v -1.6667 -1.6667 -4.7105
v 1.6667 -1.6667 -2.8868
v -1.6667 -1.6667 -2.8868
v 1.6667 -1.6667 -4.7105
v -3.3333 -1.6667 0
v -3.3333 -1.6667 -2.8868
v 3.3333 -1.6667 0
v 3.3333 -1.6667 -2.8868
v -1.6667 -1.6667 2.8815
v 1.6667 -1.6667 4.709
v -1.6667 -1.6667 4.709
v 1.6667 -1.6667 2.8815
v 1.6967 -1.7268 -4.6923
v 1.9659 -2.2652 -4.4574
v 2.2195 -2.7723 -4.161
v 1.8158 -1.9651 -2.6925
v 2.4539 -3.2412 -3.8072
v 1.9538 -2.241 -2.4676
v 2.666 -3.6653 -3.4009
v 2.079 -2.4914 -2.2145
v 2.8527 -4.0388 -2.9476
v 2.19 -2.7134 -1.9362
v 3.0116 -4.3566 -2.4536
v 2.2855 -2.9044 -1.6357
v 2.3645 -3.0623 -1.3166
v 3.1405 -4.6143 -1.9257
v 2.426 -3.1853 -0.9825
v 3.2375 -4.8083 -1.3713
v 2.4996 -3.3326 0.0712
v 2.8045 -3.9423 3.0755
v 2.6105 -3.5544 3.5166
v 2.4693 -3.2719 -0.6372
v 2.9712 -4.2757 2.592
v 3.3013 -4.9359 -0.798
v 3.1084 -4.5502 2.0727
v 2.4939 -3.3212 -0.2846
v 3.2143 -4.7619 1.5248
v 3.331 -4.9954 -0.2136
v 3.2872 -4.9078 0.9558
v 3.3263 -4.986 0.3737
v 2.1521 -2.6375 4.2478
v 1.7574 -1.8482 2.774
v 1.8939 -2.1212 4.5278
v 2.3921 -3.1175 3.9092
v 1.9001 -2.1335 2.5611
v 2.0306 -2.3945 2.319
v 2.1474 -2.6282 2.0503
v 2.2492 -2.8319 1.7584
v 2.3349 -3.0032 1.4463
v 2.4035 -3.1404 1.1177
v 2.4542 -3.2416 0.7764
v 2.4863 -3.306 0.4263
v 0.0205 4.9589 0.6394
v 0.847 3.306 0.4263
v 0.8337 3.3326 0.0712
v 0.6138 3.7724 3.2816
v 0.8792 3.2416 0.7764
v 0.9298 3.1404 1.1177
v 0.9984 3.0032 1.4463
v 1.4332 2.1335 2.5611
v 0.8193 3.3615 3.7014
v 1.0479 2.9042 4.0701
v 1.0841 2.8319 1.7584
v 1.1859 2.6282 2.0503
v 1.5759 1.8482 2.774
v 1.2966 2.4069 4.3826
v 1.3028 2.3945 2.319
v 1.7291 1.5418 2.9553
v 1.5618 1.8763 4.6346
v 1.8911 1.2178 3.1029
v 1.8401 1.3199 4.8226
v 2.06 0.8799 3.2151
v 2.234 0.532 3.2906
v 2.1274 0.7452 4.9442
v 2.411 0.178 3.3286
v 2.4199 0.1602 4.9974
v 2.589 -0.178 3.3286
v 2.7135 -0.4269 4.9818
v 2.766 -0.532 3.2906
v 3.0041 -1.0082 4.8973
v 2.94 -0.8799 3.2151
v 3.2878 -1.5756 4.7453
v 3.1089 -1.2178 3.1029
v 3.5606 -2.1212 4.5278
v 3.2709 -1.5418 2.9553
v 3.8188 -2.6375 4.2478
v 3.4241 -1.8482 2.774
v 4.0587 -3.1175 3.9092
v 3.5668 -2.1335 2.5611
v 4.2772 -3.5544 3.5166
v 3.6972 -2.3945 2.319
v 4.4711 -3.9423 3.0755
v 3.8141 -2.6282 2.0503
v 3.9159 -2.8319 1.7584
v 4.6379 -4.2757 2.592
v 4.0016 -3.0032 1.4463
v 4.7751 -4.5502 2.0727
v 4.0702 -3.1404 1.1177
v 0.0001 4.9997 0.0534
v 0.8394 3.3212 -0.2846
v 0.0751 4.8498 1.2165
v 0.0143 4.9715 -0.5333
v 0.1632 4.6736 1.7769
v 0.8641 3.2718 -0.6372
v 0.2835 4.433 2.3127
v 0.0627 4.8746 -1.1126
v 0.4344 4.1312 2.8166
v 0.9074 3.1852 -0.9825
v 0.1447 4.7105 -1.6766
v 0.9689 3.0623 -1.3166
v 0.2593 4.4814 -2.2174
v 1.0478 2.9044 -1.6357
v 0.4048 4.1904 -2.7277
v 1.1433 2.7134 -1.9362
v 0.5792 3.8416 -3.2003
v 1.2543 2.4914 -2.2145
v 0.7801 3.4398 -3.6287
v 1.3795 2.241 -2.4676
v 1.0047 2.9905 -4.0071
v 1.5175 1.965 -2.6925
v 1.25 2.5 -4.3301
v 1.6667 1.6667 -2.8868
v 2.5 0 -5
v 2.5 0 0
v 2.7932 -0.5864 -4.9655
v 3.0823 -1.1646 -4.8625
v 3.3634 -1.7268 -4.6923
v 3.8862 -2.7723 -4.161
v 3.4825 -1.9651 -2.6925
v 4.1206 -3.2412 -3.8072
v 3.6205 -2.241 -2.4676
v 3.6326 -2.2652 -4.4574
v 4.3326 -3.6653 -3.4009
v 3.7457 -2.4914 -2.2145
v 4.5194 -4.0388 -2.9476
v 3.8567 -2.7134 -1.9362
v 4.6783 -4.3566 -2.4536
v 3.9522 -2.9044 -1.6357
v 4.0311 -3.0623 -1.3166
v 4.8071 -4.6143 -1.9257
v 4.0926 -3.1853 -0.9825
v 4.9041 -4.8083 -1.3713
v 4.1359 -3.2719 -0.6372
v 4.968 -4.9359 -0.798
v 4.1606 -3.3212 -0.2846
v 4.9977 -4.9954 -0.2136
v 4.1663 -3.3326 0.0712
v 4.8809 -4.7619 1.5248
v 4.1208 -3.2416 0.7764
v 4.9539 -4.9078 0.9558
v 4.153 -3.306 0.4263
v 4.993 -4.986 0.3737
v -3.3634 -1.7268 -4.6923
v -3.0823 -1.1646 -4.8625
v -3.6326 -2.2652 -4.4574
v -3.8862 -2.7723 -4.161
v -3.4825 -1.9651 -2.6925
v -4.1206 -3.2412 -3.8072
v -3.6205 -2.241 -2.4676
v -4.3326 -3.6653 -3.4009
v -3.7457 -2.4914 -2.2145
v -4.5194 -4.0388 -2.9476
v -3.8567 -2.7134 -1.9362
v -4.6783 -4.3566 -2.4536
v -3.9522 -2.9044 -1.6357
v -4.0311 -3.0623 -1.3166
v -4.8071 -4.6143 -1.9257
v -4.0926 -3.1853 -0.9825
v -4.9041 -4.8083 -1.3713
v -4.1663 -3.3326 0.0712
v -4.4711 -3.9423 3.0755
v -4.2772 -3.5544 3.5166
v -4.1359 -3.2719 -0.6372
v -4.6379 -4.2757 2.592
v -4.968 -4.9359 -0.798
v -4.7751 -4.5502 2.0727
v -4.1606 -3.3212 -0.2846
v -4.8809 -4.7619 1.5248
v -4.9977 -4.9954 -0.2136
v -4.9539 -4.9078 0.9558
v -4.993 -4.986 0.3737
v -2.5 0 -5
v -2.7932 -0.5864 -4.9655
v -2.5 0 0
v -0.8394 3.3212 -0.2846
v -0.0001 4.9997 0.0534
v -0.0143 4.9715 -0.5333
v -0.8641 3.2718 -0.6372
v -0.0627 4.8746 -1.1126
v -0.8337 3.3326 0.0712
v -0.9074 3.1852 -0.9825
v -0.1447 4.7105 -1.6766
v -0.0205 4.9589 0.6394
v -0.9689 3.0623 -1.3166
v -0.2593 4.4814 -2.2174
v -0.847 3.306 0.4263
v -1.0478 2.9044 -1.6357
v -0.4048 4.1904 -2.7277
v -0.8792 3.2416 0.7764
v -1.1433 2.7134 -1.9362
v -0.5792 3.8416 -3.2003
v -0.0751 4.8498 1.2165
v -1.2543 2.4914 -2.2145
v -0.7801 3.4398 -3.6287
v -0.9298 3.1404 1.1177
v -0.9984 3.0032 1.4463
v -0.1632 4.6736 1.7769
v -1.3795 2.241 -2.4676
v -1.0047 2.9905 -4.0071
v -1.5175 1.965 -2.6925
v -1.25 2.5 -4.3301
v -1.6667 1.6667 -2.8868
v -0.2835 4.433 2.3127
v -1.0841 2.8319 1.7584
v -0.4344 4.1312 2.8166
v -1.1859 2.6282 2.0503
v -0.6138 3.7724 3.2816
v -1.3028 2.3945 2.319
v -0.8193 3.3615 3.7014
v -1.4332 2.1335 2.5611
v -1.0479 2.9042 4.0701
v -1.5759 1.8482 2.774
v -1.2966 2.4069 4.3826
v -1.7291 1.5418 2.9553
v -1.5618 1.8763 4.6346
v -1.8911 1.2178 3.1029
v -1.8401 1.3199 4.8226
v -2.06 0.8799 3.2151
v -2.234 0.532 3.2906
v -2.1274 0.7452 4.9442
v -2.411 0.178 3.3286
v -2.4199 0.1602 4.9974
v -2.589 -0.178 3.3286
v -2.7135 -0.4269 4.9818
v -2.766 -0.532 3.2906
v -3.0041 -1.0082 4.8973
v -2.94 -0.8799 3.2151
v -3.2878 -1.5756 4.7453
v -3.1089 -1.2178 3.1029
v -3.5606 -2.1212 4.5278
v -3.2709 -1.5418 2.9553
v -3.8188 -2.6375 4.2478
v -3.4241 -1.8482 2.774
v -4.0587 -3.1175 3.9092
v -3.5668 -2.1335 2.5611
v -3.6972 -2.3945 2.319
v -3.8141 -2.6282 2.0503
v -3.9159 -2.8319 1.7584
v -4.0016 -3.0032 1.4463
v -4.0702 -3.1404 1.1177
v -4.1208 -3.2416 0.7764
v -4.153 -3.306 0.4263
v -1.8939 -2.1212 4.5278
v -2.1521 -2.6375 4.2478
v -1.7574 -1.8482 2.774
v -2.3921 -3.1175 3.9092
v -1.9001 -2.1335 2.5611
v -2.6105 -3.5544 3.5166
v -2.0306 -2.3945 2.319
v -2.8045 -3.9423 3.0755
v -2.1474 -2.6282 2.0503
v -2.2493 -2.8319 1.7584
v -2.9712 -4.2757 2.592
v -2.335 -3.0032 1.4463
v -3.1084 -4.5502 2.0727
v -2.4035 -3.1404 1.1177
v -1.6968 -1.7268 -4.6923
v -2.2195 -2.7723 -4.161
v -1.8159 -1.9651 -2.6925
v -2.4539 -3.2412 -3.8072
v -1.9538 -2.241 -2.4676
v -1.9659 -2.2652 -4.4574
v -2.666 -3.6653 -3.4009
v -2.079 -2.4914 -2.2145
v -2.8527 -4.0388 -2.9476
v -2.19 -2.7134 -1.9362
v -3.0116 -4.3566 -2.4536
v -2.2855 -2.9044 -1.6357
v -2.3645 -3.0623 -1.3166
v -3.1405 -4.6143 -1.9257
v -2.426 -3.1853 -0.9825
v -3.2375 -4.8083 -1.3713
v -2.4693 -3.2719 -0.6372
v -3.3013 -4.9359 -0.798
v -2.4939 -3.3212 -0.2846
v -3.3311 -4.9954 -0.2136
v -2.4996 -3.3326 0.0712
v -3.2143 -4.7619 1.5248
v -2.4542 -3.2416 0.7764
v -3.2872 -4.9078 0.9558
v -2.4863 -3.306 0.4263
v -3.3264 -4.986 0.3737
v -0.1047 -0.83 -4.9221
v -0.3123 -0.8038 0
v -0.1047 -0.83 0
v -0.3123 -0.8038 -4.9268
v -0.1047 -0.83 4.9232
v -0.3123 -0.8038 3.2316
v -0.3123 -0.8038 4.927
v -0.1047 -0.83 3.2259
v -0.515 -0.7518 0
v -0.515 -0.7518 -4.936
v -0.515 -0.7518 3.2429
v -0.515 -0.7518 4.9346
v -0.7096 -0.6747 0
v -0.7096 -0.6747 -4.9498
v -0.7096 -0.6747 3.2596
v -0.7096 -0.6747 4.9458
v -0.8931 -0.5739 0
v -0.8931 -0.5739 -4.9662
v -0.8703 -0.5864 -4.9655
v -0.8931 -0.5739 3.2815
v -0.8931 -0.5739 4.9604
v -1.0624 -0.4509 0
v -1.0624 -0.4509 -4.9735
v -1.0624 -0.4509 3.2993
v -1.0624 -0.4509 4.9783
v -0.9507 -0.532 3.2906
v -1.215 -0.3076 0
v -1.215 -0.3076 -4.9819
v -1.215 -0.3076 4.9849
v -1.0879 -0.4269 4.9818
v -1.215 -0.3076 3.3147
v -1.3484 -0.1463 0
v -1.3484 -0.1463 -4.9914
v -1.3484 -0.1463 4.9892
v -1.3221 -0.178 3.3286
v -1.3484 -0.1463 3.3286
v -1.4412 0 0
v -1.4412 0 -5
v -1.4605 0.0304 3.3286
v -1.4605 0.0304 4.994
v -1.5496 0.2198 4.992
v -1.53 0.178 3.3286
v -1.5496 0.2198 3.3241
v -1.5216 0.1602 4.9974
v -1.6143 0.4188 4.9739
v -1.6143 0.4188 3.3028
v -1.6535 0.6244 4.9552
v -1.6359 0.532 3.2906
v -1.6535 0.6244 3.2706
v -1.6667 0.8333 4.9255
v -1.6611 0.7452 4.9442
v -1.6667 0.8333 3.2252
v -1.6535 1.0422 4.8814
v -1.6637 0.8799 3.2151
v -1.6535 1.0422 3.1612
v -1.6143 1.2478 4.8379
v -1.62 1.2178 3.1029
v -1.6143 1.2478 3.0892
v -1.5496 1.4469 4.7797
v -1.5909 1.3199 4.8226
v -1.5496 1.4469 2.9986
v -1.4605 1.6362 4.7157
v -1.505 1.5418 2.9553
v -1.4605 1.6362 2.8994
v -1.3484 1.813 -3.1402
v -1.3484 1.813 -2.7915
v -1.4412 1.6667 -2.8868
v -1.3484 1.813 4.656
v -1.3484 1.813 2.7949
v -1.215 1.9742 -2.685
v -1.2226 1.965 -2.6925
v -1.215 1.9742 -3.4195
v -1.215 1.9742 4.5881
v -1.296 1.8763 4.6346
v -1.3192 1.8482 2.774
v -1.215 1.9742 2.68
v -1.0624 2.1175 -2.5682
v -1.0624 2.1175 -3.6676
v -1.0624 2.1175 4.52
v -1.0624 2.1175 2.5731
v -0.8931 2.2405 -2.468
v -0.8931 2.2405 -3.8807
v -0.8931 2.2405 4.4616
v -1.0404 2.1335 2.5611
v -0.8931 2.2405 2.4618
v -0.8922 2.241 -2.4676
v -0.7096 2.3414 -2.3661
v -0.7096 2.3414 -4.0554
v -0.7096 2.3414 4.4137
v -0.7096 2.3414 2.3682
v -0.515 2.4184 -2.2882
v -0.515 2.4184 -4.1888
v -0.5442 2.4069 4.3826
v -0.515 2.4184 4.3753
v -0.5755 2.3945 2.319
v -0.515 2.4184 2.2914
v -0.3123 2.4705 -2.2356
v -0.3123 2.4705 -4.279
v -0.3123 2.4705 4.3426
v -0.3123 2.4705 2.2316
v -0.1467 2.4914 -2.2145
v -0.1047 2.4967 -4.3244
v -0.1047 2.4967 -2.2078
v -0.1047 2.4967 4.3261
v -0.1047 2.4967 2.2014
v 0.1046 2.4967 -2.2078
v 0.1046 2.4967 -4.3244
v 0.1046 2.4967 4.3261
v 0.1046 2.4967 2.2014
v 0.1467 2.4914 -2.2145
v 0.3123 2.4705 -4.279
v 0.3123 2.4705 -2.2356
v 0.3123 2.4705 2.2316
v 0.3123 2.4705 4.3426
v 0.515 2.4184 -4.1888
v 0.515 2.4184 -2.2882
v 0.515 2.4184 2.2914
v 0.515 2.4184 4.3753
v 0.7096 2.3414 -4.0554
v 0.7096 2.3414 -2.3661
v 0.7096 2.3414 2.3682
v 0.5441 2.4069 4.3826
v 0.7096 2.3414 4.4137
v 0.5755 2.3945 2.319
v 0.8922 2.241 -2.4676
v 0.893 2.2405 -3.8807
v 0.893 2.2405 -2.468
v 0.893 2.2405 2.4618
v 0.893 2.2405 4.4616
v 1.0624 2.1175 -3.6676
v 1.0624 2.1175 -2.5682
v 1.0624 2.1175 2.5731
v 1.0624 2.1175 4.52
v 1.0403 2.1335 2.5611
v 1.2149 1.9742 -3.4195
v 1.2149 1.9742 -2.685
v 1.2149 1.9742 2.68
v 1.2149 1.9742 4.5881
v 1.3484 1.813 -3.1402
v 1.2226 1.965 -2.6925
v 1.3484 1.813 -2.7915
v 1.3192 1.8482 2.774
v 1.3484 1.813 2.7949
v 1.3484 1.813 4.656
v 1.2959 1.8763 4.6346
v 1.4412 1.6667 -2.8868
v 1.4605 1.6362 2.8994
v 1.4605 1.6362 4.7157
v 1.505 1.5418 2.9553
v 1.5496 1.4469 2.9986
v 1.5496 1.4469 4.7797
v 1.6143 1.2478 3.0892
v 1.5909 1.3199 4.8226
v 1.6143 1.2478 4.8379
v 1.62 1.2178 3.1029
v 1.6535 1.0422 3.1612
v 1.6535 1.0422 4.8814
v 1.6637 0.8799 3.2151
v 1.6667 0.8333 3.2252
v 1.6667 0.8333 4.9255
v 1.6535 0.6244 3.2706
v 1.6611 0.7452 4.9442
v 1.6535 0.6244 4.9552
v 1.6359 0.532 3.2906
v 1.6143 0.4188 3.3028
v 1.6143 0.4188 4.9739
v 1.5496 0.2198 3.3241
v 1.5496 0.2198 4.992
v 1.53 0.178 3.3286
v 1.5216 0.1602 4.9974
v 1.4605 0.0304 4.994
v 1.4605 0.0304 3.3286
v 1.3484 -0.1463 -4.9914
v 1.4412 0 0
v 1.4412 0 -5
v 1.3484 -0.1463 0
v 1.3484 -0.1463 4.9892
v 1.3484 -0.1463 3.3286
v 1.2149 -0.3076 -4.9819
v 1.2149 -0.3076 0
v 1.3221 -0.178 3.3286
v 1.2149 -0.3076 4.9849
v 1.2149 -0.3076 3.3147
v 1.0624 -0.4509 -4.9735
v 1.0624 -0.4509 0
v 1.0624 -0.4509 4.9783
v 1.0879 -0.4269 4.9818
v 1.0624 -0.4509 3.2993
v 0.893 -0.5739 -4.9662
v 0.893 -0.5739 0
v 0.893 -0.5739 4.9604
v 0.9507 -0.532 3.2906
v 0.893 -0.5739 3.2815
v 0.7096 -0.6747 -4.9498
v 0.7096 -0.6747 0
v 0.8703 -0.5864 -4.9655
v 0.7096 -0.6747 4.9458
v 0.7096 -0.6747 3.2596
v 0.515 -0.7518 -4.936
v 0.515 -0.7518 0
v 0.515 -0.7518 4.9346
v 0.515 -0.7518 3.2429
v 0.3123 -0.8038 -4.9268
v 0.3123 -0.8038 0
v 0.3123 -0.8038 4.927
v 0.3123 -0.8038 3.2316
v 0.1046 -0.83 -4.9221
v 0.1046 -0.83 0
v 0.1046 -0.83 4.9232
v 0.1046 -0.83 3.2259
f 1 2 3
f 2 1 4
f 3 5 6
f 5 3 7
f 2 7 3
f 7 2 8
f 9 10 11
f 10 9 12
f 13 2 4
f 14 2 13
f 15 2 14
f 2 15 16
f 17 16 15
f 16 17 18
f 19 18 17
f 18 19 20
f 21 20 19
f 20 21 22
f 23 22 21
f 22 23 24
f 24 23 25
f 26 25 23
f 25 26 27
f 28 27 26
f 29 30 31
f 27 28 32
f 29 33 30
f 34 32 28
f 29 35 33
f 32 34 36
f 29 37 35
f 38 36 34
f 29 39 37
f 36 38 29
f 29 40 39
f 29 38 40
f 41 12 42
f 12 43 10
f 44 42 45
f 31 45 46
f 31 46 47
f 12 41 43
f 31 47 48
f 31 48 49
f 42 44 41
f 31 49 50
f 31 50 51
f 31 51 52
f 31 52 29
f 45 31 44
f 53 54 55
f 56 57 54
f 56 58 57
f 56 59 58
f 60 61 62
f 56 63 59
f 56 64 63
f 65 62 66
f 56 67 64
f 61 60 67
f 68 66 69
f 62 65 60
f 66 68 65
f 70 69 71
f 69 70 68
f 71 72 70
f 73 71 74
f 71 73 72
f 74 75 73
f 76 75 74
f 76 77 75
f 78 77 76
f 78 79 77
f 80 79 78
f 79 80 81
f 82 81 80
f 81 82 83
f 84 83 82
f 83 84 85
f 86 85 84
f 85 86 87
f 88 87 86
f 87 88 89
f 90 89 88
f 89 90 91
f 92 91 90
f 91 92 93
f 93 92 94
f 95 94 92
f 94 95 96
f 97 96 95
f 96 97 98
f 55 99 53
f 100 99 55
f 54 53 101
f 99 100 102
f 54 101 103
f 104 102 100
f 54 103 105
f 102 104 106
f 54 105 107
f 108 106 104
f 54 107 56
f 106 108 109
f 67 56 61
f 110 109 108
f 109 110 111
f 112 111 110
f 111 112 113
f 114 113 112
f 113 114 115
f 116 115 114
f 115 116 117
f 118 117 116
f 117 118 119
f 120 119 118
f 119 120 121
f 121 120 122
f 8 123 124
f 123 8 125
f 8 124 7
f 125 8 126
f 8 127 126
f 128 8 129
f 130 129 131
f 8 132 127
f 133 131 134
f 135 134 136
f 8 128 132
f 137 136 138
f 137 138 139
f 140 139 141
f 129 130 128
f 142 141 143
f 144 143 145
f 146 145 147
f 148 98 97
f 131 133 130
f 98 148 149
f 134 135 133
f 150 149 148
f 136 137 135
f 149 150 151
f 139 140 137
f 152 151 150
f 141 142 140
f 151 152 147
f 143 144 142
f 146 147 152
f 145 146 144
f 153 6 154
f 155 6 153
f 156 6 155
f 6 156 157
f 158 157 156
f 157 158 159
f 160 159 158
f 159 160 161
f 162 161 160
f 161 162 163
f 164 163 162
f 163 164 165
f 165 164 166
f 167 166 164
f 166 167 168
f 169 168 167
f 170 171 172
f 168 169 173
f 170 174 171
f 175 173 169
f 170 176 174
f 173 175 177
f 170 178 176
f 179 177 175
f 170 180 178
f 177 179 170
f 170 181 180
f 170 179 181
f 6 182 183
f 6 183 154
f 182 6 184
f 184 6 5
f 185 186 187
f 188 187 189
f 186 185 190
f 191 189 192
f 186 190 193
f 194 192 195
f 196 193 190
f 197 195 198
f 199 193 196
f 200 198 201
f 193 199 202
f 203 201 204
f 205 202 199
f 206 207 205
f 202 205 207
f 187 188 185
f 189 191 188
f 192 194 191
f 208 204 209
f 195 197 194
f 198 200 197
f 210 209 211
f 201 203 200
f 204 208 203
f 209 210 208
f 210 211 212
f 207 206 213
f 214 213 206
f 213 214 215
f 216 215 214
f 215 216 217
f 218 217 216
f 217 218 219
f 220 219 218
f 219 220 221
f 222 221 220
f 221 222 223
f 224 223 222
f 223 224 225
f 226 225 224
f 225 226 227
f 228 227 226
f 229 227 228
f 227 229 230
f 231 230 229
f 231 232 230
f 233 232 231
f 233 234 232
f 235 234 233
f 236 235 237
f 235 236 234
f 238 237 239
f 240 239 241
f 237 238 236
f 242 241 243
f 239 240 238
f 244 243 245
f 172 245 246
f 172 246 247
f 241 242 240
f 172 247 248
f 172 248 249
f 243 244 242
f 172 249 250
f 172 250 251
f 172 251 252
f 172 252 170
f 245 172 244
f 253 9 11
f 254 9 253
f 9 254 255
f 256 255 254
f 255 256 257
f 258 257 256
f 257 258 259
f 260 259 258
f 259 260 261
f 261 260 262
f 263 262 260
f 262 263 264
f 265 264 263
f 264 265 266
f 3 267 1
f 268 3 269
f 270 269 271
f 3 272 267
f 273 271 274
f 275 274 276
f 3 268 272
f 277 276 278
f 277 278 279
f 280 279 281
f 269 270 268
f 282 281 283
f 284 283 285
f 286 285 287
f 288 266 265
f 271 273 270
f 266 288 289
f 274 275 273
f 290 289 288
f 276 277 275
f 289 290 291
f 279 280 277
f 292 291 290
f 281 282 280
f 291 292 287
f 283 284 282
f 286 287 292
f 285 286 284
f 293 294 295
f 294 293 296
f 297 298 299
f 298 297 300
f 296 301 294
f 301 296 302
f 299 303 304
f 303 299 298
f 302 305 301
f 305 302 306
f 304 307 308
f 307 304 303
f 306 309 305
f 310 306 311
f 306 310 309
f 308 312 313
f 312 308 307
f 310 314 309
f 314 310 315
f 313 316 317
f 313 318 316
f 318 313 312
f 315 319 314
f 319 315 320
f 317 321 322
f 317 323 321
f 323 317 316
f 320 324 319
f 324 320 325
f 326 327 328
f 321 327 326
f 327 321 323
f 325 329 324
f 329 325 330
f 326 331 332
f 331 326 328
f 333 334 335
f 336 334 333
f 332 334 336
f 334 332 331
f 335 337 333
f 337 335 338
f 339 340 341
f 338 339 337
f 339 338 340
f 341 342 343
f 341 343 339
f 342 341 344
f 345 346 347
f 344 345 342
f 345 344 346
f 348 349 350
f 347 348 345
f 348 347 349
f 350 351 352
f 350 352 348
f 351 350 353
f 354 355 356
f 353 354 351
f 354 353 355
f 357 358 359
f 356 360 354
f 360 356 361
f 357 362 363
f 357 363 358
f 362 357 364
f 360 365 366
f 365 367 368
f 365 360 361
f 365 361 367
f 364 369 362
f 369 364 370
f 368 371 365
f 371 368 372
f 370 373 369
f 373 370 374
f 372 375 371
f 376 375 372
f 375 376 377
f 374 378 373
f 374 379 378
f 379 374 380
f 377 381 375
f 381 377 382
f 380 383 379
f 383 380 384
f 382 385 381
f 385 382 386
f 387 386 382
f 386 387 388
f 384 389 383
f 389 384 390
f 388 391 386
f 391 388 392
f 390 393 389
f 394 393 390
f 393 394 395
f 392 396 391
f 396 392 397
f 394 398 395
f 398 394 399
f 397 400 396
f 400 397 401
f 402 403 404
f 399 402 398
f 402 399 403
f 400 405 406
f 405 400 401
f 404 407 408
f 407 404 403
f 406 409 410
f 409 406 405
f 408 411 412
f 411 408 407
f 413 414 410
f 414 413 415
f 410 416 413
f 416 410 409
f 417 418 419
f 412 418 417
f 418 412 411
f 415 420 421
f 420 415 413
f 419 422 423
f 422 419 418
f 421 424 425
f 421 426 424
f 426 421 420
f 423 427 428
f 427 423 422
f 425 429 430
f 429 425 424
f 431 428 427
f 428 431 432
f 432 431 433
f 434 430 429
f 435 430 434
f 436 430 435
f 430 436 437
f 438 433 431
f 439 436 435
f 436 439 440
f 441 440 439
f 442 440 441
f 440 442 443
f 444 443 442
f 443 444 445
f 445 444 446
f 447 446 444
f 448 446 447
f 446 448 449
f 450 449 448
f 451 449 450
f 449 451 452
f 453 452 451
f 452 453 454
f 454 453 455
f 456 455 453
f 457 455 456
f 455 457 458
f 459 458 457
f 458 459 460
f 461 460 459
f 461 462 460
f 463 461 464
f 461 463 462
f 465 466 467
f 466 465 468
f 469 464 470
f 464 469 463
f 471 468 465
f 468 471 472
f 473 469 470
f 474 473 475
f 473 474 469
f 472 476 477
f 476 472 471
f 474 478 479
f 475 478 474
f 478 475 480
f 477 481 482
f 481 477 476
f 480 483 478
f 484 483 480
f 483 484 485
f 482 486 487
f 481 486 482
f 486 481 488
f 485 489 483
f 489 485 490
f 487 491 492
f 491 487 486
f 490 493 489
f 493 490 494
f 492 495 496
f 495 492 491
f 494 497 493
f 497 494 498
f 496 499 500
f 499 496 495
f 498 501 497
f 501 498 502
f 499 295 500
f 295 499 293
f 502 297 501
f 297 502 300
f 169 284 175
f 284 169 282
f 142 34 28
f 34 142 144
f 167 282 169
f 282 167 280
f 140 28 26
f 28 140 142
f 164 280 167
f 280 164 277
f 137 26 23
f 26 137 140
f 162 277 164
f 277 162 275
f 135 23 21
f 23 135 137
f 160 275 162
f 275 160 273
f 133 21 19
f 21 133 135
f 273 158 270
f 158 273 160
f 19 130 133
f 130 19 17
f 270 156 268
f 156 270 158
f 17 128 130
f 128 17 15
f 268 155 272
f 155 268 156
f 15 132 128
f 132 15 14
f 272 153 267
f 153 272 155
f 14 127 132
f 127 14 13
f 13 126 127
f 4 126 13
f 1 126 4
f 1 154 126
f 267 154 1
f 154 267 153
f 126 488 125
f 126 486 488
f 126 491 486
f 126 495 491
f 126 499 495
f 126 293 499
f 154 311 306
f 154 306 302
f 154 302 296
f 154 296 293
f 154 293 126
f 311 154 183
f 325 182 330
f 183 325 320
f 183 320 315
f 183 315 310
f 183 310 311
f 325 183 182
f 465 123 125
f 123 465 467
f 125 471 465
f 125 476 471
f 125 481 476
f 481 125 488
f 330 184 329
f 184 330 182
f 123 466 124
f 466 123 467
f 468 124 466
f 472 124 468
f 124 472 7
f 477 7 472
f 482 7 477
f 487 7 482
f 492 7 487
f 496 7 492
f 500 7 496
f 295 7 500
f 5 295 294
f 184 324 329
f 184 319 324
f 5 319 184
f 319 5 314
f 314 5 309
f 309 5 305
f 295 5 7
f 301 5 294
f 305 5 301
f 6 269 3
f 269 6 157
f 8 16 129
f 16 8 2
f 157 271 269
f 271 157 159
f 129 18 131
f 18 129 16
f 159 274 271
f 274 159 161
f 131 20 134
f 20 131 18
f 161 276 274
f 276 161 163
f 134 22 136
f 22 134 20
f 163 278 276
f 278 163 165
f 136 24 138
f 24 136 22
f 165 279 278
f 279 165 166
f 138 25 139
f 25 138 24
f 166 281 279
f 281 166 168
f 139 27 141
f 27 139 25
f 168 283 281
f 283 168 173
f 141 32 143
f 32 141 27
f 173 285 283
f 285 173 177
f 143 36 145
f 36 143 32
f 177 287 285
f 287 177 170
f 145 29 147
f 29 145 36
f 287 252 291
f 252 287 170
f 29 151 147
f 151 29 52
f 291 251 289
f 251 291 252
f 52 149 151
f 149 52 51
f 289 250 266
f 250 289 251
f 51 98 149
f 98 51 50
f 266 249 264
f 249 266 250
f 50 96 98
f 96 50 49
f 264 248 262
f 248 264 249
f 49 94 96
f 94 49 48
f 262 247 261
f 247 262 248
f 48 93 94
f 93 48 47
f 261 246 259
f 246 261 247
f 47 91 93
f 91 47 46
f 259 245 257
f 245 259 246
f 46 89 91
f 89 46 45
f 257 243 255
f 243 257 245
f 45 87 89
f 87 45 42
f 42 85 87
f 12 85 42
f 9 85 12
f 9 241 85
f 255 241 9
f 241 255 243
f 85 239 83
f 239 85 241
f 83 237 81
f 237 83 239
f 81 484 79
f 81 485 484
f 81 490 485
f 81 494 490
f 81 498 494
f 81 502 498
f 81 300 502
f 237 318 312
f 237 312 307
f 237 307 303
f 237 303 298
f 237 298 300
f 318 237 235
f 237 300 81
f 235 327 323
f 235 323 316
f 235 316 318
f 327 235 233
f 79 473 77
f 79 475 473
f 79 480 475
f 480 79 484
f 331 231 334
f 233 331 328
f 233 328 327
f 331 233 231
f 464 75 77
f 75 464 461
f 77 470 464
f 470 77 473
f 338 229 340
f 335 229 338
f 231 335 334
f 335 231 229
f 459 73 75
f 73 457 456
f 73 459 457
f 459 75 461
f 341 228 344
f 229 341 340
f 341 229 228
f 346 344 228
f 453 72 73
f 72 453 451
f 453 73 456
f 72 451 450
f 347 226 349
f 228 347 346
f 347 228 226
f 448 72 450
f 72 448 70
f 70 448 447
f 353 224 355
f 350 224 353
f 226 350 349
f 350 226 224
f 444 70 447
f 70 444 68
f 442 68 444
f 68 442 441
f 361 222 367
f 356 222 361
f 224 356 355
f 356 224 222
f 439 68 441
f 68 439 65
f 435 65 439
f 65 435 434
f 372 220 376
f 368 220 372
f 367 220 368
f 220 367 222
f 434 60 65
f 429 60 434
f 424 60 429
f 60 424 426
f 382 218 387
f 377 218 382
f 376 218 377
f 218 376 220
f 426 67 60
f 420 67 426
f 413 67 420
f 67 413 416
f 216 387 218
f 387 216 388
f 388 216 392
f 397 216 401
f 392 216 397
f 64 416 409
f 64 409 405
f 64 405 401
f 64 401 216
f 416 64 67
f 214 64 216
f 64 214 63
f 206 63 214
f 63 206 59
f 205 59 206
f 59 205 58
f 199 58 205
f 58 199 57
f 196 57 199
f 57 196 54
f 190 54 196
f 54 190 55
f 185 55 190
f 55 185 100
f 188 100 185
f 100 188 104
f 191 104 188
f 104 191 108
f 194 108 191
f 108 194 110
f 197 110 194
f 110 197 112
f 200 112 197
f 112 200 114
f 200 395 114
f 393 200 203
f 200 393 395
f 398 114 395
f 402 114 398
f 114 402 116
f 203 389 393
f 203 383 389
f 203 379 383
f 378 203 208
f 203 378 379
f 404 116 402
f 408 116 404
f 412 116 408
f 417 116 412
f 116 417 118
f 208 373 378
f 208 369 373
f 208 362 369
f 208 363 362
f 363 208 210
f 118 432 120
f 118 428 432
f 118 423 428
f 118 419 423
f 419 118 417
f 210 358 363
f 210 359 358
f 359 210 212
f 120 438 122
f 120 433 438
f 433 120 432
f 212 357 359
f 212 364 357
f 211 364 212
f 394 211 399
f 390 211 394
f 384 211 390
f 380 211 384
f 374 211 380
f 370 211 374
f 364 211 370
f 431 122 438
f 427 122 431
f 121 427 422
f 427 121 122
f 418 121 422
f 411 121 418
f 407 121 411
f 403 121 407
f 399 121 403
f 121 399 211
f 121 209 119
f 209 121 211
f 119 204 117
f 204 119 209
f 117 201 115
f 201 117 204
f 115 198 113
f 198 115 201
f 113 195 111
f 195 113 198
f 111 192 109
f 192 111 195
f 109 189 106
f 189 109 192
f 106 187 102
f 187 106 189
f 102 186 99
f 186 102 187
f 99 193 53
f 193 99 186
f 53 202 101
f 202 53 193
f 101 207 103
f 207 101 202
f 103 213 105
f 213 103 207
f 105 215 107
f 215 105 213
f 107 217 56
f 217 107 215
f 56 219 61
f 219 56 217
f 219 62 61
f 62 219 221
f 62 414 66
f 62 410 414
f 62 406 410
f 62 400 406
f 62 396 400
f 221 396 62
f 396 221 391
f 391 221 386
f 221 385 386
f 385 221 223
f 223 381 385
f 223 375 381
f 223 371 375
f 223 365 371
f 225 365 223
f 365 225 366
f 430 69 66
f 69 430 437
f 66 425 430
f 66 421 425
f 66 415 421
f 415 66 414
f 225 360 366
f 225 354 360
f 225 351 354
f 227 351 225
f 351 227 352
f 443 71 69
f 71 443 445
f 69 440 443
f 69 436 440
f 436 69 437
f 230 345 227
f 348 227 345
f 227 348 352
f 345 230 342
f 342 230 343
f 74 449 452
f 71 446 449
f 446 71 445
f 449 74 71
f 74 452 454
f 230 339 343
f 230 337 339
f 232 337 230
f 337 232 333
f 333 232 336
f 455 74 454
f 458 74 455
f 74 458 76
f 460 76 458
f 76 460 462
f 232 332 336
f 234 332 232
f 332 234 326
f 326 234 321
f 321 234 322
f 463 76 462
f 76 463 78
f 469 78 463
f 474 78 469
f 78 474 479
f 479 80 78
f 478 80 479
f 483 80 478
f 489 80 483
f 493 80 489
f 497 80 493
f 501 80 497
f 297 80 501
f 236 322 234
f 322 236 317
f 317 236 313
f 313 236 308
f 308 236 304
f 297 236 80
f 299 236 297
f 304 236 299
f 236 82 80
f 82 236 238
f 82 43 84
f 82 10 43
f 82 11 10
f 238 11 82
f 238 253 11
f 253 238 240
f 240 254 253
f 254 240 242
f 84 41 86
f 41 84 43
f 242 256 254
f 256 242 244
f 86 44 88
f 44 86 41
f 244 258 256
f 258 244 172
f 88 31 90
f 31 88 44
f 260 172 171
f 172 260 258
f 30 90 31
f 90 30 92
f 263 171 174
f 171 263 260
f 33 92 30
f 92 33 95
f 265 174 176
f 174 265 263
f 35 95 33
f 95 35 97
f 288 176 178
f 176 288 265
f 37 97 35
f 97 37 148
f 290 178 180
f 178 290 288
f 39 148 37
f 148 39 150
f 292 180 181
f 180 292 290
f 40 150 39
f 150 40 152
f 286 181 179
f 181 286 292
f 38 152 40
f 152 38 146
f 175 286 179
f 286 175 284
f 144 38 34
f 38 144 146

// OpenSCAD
// Generated by SolidPython 1.1.3 on 2025-02-25 01:33:35
$fn=50;


intersection() {
	translate(v = [-5.0000000000, -5.0000000000, -5.0000000000]) {
		linear_extrude(height = 10) {
			difference() {
				polygon(points = [[0, 0], [5.0000000000, 10], [10, 0], [8.3333333333, 0], [6.6666666667, 3.3333333333], [3.3333333333, 3.3333333333], [1.6666666667, 0]]);
				translate(v = [5.0000000000, 5.8333333333]) {
					circle(r = 1.6666666667);
				}
			}
		}
	}
	rotate(a = 90, v = [0, 1, 0]) {
		translate(v = [-5.0000000000, -5.0000000000, -5.0000000000]) {
			linear_extrude(height = 10) {
				polygon(points = [[9.3301270189, 7.5000000000], [9.0070681093, 7.9905526525], [8.6287102231, 8.4398346060], [8.2002748347, 8.8416456087], [7.7276745061, 9.1904405245], [7.2174312912, 9.4814058585], [6.6765867295, 9.7105261849], [6.1126046698, 9.8746395609], [5.5332682667, 9.9714811632], [4.9465725703, 9.9997145428], [4.3606141916, 9.9589500691], [3.7834795663, 9.8497503064], [3.2231333592, 9.6736222505], [2.6873085488, 9.4329965319], [2.1833997097, 9.1311938716], [1.7183609645, 8.7723792546], [1.2986100146, 8.3615044513], [0.9299395737, 7.9042396813], [0.6174374260, 7.4068953623], [0.3654162133, 6.8763350244], [0.1773539185, 6.3198805903], [0.0558458689, 5.7452113309], [0.0025689190, 5.1602578879], [0.0182583099, 4.5730928285], [0.1026975223, 3.9918192412], [0.2547212649, 3.4244589099], [0.4722315555, 2.8788416105], [0.7522266741, 2.3624970575], [1.0908425877, 1.8825509907], [1.4834062751, 1.4456268381], [1.9245002169, 1.0577543095], [2.4080371584, 0.7242861850], [2.9273441165, 0.4498244442], [3.4752544690, 0.2381567575], [4.0442068565, 0.0922042150], [4.6263495321, 0.0139810141], [5.2136487181, 0.0045666629], [5.7979994752, 0.0640910829], [6.3713375534, 0.1917328158], [6.9257506816, 0.3857303598], [7.4535877600, 0.6434064794], [7.9475644476, 0.9612051516], [8.4008636889, 1.3347406409], [8.8072297918, 1.7588580235], [9.1610547586, 2.2277043275], [9.4574556777, 2.7348093058], [9.6923421102, 3.2731747279], [9.8624725392, 3.8353709579], [9.9654991036, 4.4136394863], [10.0000000000, 5.0000000000], [5.0000000000, 5.0000000000], [5.0000000000, 3.3333333333], [7.8867513459, 3.3333333333], [7.6925298989, 3.0349570350], [7.4675933236, 2.7589970325], [7.2145075917, 2.5086013491], [6.9361597875, 2.2866263825], [6.6357251733, 2.0956043196], [6.3166309674, 1.9377142513], [5.9825172480, 1.8147573140], [5.6371954290, 1.7281361434], [5.2846047810, 1.6788388733], [4.9287674940, 1.6674278641], [4.5737427944, 1.6940332873], [4.2235806386, 1.7583516405], [3.8822755137, 1.8596492101], [3.5537208696, 1.9967704403], [3.2416647050, 2.1681511161], [2.9496668113, 2.3718362063], [2.6810581647, 2.6055021663], [2.4389029276, 2.8664834436], [2.2259634943, 3.1518028850], [2.0446689788, 3.4582056992], [1.8970875045, 3.7821965854], [1.7849026123, 4.1200796064], [1.7093940553, 4.4680003499], [1.6714231998, 4.8219898978], [1.6714231998, 5.1780101022], [1.7093940553, 5.5319996501], [1.7849026123, 5.8799203936], [1.8970875045, 6.2178034146], [2.0446689788, 6.5417943008], [2.2259634943, 6.8481971150], [2.4389029276, 7.1335165564], [2.6810581647, 7.3944978337], [2.9496668113, 7.6281637937], [3.2416647050, 7.8318488839], [3.5537208696, 8.0032295597], [3.8822755137, 8.1403507899], [4.2235806386, 8.2416483595], [4.5737427944, 8.3059667127], [4.9287674940, 8.3325721359], [5.2846047810, 8.3211611267], [5.6371954290, 8.2718638566], [5.9825172480, 8.1852426860], [6.3166309674, 8.0622857487], [6.6357251733, 7.9043956804], [6.9361597875, 7.7133736175], [7.2145075917, 7.4913986509], [7.4675933236, 7.2410029675], [7.6925298989, 6.9650429650], [7.8867513459, 6.6666666667]]);
			}
		}
	}
}
/***********************************************
*********      SolidPython code:      **********
************************************************
 
from solid import *
from solid.utils import *

import math
import matplotlib.pyplot as plt
import subprocess
import os
import grok_letters as grok
import grok_think as grok_think
import letters as let
import o1_letters as o1

def arc_points(radius, start_angle, end_angle, center=[0,0], num_points=50):
    angles = [start_angle + i * (end_angle - start_angle) / (num_points - 1)
              for i in range(num_points)]
    points = [
        (center[0] + radius * math.cos(math.radians(angle)),
         center[1] + radius * math.sin(math.radians(angle)))
        for angle in angles
    ]
    return points

class Hole:
    def __init__(self, radius, x, y):
        """
        Hole defined by:
        :param x: x dimension for center point of the circle as a ratio of letter height
        :param y: y dimension for center point of the circle as a ratio of letter height
        :param radius: radius of circle as a ratio of letter height
        """
        self.x = x
        self.y = y
        self.radius = radius

class Letter2D:
    def __init__(self, letter, scale):
        self.letter = letter
        self.scale = scale
        self.shape = self.generate()
    
    def get_letter_points(self):
        points = getattr(let, self.letter)
        # points = getattr(o1, self.letter)
        # points = getattr(grok, self.letter)
        scaled_points = [(point[0] * self.scale, point[1] * self.scale) for point in points]
        return scaled_points

    def get_letter_holes(self):
        holes = []
        if self.letter == "A": 
            holes = [Hole(1/6, 1/2, 7/12)]
        if self.letter == "B":
            holes = [Hole(1/6, 1/2, 3/4), Hole(1/6, 1/2, 1/4)]
        if self.letter == "D":
            holes = [Hole(1/3, 1/2, 1/2)]

        scaled_holes = [Hole(hole.radius*self.scale, hole.x*self.scale, hole.y*self.scale) for hole in holes]
        return scaled_holes

    
    def generate(self):
        shape = polygon(points=self.get_letter_points())
        holes = self.get_letter_holes()

        if holes:
            for hole in holes:
                circle_hole = circle(r=hole.radius)
                positioned_hole = translate([hole.x, hole.y])(circle_hole)
                shape = difference()(shape, positioned_hole)
        return shape
    

    def render(self):
        scad_render_to_file(self.shape, f"output/{self.name}.scad", file_header='$fn=50;')
        subprocess.run(["C:\\Program Files\\OpenSCAD\\openscad.exe", "-o", f"output\\{self.name}.stl", f"output\\{self.name}.scad"])


class TwoLetter3D:
    def __init__(self, height, letterA, letterB=None):
        self.height = height
        self.letterA = letterA
        self.letterB = letterB
    

    def generate_3d_letter(self, letter):
        letter = letter.upper()
        # TODO: add catch here for is letter is not a letter
        shape = Letter2D(letter, self.height).generate()
        shape_3d = linear_extrude(height=self.height)(shape)
        centered_shape_3d = translate([-self.height/2, -self.height/2, -self.height/2])(shape_3d)
        return centered_shape_3d


    def render(self):
        letterA3D = self.generate_3d_letter(self.letterA)

        if self.letterB:
            letterB3D = self.generate_3d_letter(self.letterB)
            letterB3D = rotate(a=90, v=[0,1,0])(letterB3D)

            combined = intersection()(letterA3D, letterB3D)
            file_name = self.letterA + self.letterB
            scad_render_to_file(combined, f"output/{file_name}.scad", file_header='$fn=50;')
            subprocess.run(["C:\\Program Files\\OpenSCAD\\openscad.exe", "-o", f"output\\{file_name}.stl", f"output\\{file_name}.scad"])
            return
        else:
            # file_name = "o1_" + self.letterA
            # file_name = "grok_think_" + self.letterA
            file_name = self.letterA
            # file_name = "grok_" + self.letterA
            scad_render_to_file(letterA3D, f"output/{file_name}.scad", file_header='$fn=50;')
            subprocess.run(["C:\\Program Files\\OpenSCAD\\openscad.exe", "-o", f"output\\{file_name}.stl", f"output\\{file_name}.scad"])
            # subprocess.run(["openscad", "-o", f"output\\{file_name}.png", f"output\\{file_name}.scad", "--imgsize=800,600", "--autocenter"])
            subprocess.run(["openscad", "-o", f"output\\{file_name}.png", f"output\\{file_name}.scad", "--imgsize=800,600", "--camera=0,0,30,0,0,0", "--viewall", "--autocenter", "--projection=o"])
            os.remove(f"output/{file_name}.scad")
            return
                


if __name__ == "__main__":
    os.makedirs("output", exist_ok=True)

    # # Generate a letter
    # letter = input()
    # shape = TwoLetter3D(10, letter)
    # shape.render()
    
    letters = [chr(x) for x in range(ord('A'), ord('j') + 1)]

    # Generate all combos
    for letter in letters:
        for other_letter in letters:
            shape = TwoLetter3D(10, letter, other_letter)
            shape.render()

    # # Generate all letters
    # for letter in letters:
    #     shape = TwoLetter3D(10, letter)
    #     shape.render()
 
 
************************************************/
